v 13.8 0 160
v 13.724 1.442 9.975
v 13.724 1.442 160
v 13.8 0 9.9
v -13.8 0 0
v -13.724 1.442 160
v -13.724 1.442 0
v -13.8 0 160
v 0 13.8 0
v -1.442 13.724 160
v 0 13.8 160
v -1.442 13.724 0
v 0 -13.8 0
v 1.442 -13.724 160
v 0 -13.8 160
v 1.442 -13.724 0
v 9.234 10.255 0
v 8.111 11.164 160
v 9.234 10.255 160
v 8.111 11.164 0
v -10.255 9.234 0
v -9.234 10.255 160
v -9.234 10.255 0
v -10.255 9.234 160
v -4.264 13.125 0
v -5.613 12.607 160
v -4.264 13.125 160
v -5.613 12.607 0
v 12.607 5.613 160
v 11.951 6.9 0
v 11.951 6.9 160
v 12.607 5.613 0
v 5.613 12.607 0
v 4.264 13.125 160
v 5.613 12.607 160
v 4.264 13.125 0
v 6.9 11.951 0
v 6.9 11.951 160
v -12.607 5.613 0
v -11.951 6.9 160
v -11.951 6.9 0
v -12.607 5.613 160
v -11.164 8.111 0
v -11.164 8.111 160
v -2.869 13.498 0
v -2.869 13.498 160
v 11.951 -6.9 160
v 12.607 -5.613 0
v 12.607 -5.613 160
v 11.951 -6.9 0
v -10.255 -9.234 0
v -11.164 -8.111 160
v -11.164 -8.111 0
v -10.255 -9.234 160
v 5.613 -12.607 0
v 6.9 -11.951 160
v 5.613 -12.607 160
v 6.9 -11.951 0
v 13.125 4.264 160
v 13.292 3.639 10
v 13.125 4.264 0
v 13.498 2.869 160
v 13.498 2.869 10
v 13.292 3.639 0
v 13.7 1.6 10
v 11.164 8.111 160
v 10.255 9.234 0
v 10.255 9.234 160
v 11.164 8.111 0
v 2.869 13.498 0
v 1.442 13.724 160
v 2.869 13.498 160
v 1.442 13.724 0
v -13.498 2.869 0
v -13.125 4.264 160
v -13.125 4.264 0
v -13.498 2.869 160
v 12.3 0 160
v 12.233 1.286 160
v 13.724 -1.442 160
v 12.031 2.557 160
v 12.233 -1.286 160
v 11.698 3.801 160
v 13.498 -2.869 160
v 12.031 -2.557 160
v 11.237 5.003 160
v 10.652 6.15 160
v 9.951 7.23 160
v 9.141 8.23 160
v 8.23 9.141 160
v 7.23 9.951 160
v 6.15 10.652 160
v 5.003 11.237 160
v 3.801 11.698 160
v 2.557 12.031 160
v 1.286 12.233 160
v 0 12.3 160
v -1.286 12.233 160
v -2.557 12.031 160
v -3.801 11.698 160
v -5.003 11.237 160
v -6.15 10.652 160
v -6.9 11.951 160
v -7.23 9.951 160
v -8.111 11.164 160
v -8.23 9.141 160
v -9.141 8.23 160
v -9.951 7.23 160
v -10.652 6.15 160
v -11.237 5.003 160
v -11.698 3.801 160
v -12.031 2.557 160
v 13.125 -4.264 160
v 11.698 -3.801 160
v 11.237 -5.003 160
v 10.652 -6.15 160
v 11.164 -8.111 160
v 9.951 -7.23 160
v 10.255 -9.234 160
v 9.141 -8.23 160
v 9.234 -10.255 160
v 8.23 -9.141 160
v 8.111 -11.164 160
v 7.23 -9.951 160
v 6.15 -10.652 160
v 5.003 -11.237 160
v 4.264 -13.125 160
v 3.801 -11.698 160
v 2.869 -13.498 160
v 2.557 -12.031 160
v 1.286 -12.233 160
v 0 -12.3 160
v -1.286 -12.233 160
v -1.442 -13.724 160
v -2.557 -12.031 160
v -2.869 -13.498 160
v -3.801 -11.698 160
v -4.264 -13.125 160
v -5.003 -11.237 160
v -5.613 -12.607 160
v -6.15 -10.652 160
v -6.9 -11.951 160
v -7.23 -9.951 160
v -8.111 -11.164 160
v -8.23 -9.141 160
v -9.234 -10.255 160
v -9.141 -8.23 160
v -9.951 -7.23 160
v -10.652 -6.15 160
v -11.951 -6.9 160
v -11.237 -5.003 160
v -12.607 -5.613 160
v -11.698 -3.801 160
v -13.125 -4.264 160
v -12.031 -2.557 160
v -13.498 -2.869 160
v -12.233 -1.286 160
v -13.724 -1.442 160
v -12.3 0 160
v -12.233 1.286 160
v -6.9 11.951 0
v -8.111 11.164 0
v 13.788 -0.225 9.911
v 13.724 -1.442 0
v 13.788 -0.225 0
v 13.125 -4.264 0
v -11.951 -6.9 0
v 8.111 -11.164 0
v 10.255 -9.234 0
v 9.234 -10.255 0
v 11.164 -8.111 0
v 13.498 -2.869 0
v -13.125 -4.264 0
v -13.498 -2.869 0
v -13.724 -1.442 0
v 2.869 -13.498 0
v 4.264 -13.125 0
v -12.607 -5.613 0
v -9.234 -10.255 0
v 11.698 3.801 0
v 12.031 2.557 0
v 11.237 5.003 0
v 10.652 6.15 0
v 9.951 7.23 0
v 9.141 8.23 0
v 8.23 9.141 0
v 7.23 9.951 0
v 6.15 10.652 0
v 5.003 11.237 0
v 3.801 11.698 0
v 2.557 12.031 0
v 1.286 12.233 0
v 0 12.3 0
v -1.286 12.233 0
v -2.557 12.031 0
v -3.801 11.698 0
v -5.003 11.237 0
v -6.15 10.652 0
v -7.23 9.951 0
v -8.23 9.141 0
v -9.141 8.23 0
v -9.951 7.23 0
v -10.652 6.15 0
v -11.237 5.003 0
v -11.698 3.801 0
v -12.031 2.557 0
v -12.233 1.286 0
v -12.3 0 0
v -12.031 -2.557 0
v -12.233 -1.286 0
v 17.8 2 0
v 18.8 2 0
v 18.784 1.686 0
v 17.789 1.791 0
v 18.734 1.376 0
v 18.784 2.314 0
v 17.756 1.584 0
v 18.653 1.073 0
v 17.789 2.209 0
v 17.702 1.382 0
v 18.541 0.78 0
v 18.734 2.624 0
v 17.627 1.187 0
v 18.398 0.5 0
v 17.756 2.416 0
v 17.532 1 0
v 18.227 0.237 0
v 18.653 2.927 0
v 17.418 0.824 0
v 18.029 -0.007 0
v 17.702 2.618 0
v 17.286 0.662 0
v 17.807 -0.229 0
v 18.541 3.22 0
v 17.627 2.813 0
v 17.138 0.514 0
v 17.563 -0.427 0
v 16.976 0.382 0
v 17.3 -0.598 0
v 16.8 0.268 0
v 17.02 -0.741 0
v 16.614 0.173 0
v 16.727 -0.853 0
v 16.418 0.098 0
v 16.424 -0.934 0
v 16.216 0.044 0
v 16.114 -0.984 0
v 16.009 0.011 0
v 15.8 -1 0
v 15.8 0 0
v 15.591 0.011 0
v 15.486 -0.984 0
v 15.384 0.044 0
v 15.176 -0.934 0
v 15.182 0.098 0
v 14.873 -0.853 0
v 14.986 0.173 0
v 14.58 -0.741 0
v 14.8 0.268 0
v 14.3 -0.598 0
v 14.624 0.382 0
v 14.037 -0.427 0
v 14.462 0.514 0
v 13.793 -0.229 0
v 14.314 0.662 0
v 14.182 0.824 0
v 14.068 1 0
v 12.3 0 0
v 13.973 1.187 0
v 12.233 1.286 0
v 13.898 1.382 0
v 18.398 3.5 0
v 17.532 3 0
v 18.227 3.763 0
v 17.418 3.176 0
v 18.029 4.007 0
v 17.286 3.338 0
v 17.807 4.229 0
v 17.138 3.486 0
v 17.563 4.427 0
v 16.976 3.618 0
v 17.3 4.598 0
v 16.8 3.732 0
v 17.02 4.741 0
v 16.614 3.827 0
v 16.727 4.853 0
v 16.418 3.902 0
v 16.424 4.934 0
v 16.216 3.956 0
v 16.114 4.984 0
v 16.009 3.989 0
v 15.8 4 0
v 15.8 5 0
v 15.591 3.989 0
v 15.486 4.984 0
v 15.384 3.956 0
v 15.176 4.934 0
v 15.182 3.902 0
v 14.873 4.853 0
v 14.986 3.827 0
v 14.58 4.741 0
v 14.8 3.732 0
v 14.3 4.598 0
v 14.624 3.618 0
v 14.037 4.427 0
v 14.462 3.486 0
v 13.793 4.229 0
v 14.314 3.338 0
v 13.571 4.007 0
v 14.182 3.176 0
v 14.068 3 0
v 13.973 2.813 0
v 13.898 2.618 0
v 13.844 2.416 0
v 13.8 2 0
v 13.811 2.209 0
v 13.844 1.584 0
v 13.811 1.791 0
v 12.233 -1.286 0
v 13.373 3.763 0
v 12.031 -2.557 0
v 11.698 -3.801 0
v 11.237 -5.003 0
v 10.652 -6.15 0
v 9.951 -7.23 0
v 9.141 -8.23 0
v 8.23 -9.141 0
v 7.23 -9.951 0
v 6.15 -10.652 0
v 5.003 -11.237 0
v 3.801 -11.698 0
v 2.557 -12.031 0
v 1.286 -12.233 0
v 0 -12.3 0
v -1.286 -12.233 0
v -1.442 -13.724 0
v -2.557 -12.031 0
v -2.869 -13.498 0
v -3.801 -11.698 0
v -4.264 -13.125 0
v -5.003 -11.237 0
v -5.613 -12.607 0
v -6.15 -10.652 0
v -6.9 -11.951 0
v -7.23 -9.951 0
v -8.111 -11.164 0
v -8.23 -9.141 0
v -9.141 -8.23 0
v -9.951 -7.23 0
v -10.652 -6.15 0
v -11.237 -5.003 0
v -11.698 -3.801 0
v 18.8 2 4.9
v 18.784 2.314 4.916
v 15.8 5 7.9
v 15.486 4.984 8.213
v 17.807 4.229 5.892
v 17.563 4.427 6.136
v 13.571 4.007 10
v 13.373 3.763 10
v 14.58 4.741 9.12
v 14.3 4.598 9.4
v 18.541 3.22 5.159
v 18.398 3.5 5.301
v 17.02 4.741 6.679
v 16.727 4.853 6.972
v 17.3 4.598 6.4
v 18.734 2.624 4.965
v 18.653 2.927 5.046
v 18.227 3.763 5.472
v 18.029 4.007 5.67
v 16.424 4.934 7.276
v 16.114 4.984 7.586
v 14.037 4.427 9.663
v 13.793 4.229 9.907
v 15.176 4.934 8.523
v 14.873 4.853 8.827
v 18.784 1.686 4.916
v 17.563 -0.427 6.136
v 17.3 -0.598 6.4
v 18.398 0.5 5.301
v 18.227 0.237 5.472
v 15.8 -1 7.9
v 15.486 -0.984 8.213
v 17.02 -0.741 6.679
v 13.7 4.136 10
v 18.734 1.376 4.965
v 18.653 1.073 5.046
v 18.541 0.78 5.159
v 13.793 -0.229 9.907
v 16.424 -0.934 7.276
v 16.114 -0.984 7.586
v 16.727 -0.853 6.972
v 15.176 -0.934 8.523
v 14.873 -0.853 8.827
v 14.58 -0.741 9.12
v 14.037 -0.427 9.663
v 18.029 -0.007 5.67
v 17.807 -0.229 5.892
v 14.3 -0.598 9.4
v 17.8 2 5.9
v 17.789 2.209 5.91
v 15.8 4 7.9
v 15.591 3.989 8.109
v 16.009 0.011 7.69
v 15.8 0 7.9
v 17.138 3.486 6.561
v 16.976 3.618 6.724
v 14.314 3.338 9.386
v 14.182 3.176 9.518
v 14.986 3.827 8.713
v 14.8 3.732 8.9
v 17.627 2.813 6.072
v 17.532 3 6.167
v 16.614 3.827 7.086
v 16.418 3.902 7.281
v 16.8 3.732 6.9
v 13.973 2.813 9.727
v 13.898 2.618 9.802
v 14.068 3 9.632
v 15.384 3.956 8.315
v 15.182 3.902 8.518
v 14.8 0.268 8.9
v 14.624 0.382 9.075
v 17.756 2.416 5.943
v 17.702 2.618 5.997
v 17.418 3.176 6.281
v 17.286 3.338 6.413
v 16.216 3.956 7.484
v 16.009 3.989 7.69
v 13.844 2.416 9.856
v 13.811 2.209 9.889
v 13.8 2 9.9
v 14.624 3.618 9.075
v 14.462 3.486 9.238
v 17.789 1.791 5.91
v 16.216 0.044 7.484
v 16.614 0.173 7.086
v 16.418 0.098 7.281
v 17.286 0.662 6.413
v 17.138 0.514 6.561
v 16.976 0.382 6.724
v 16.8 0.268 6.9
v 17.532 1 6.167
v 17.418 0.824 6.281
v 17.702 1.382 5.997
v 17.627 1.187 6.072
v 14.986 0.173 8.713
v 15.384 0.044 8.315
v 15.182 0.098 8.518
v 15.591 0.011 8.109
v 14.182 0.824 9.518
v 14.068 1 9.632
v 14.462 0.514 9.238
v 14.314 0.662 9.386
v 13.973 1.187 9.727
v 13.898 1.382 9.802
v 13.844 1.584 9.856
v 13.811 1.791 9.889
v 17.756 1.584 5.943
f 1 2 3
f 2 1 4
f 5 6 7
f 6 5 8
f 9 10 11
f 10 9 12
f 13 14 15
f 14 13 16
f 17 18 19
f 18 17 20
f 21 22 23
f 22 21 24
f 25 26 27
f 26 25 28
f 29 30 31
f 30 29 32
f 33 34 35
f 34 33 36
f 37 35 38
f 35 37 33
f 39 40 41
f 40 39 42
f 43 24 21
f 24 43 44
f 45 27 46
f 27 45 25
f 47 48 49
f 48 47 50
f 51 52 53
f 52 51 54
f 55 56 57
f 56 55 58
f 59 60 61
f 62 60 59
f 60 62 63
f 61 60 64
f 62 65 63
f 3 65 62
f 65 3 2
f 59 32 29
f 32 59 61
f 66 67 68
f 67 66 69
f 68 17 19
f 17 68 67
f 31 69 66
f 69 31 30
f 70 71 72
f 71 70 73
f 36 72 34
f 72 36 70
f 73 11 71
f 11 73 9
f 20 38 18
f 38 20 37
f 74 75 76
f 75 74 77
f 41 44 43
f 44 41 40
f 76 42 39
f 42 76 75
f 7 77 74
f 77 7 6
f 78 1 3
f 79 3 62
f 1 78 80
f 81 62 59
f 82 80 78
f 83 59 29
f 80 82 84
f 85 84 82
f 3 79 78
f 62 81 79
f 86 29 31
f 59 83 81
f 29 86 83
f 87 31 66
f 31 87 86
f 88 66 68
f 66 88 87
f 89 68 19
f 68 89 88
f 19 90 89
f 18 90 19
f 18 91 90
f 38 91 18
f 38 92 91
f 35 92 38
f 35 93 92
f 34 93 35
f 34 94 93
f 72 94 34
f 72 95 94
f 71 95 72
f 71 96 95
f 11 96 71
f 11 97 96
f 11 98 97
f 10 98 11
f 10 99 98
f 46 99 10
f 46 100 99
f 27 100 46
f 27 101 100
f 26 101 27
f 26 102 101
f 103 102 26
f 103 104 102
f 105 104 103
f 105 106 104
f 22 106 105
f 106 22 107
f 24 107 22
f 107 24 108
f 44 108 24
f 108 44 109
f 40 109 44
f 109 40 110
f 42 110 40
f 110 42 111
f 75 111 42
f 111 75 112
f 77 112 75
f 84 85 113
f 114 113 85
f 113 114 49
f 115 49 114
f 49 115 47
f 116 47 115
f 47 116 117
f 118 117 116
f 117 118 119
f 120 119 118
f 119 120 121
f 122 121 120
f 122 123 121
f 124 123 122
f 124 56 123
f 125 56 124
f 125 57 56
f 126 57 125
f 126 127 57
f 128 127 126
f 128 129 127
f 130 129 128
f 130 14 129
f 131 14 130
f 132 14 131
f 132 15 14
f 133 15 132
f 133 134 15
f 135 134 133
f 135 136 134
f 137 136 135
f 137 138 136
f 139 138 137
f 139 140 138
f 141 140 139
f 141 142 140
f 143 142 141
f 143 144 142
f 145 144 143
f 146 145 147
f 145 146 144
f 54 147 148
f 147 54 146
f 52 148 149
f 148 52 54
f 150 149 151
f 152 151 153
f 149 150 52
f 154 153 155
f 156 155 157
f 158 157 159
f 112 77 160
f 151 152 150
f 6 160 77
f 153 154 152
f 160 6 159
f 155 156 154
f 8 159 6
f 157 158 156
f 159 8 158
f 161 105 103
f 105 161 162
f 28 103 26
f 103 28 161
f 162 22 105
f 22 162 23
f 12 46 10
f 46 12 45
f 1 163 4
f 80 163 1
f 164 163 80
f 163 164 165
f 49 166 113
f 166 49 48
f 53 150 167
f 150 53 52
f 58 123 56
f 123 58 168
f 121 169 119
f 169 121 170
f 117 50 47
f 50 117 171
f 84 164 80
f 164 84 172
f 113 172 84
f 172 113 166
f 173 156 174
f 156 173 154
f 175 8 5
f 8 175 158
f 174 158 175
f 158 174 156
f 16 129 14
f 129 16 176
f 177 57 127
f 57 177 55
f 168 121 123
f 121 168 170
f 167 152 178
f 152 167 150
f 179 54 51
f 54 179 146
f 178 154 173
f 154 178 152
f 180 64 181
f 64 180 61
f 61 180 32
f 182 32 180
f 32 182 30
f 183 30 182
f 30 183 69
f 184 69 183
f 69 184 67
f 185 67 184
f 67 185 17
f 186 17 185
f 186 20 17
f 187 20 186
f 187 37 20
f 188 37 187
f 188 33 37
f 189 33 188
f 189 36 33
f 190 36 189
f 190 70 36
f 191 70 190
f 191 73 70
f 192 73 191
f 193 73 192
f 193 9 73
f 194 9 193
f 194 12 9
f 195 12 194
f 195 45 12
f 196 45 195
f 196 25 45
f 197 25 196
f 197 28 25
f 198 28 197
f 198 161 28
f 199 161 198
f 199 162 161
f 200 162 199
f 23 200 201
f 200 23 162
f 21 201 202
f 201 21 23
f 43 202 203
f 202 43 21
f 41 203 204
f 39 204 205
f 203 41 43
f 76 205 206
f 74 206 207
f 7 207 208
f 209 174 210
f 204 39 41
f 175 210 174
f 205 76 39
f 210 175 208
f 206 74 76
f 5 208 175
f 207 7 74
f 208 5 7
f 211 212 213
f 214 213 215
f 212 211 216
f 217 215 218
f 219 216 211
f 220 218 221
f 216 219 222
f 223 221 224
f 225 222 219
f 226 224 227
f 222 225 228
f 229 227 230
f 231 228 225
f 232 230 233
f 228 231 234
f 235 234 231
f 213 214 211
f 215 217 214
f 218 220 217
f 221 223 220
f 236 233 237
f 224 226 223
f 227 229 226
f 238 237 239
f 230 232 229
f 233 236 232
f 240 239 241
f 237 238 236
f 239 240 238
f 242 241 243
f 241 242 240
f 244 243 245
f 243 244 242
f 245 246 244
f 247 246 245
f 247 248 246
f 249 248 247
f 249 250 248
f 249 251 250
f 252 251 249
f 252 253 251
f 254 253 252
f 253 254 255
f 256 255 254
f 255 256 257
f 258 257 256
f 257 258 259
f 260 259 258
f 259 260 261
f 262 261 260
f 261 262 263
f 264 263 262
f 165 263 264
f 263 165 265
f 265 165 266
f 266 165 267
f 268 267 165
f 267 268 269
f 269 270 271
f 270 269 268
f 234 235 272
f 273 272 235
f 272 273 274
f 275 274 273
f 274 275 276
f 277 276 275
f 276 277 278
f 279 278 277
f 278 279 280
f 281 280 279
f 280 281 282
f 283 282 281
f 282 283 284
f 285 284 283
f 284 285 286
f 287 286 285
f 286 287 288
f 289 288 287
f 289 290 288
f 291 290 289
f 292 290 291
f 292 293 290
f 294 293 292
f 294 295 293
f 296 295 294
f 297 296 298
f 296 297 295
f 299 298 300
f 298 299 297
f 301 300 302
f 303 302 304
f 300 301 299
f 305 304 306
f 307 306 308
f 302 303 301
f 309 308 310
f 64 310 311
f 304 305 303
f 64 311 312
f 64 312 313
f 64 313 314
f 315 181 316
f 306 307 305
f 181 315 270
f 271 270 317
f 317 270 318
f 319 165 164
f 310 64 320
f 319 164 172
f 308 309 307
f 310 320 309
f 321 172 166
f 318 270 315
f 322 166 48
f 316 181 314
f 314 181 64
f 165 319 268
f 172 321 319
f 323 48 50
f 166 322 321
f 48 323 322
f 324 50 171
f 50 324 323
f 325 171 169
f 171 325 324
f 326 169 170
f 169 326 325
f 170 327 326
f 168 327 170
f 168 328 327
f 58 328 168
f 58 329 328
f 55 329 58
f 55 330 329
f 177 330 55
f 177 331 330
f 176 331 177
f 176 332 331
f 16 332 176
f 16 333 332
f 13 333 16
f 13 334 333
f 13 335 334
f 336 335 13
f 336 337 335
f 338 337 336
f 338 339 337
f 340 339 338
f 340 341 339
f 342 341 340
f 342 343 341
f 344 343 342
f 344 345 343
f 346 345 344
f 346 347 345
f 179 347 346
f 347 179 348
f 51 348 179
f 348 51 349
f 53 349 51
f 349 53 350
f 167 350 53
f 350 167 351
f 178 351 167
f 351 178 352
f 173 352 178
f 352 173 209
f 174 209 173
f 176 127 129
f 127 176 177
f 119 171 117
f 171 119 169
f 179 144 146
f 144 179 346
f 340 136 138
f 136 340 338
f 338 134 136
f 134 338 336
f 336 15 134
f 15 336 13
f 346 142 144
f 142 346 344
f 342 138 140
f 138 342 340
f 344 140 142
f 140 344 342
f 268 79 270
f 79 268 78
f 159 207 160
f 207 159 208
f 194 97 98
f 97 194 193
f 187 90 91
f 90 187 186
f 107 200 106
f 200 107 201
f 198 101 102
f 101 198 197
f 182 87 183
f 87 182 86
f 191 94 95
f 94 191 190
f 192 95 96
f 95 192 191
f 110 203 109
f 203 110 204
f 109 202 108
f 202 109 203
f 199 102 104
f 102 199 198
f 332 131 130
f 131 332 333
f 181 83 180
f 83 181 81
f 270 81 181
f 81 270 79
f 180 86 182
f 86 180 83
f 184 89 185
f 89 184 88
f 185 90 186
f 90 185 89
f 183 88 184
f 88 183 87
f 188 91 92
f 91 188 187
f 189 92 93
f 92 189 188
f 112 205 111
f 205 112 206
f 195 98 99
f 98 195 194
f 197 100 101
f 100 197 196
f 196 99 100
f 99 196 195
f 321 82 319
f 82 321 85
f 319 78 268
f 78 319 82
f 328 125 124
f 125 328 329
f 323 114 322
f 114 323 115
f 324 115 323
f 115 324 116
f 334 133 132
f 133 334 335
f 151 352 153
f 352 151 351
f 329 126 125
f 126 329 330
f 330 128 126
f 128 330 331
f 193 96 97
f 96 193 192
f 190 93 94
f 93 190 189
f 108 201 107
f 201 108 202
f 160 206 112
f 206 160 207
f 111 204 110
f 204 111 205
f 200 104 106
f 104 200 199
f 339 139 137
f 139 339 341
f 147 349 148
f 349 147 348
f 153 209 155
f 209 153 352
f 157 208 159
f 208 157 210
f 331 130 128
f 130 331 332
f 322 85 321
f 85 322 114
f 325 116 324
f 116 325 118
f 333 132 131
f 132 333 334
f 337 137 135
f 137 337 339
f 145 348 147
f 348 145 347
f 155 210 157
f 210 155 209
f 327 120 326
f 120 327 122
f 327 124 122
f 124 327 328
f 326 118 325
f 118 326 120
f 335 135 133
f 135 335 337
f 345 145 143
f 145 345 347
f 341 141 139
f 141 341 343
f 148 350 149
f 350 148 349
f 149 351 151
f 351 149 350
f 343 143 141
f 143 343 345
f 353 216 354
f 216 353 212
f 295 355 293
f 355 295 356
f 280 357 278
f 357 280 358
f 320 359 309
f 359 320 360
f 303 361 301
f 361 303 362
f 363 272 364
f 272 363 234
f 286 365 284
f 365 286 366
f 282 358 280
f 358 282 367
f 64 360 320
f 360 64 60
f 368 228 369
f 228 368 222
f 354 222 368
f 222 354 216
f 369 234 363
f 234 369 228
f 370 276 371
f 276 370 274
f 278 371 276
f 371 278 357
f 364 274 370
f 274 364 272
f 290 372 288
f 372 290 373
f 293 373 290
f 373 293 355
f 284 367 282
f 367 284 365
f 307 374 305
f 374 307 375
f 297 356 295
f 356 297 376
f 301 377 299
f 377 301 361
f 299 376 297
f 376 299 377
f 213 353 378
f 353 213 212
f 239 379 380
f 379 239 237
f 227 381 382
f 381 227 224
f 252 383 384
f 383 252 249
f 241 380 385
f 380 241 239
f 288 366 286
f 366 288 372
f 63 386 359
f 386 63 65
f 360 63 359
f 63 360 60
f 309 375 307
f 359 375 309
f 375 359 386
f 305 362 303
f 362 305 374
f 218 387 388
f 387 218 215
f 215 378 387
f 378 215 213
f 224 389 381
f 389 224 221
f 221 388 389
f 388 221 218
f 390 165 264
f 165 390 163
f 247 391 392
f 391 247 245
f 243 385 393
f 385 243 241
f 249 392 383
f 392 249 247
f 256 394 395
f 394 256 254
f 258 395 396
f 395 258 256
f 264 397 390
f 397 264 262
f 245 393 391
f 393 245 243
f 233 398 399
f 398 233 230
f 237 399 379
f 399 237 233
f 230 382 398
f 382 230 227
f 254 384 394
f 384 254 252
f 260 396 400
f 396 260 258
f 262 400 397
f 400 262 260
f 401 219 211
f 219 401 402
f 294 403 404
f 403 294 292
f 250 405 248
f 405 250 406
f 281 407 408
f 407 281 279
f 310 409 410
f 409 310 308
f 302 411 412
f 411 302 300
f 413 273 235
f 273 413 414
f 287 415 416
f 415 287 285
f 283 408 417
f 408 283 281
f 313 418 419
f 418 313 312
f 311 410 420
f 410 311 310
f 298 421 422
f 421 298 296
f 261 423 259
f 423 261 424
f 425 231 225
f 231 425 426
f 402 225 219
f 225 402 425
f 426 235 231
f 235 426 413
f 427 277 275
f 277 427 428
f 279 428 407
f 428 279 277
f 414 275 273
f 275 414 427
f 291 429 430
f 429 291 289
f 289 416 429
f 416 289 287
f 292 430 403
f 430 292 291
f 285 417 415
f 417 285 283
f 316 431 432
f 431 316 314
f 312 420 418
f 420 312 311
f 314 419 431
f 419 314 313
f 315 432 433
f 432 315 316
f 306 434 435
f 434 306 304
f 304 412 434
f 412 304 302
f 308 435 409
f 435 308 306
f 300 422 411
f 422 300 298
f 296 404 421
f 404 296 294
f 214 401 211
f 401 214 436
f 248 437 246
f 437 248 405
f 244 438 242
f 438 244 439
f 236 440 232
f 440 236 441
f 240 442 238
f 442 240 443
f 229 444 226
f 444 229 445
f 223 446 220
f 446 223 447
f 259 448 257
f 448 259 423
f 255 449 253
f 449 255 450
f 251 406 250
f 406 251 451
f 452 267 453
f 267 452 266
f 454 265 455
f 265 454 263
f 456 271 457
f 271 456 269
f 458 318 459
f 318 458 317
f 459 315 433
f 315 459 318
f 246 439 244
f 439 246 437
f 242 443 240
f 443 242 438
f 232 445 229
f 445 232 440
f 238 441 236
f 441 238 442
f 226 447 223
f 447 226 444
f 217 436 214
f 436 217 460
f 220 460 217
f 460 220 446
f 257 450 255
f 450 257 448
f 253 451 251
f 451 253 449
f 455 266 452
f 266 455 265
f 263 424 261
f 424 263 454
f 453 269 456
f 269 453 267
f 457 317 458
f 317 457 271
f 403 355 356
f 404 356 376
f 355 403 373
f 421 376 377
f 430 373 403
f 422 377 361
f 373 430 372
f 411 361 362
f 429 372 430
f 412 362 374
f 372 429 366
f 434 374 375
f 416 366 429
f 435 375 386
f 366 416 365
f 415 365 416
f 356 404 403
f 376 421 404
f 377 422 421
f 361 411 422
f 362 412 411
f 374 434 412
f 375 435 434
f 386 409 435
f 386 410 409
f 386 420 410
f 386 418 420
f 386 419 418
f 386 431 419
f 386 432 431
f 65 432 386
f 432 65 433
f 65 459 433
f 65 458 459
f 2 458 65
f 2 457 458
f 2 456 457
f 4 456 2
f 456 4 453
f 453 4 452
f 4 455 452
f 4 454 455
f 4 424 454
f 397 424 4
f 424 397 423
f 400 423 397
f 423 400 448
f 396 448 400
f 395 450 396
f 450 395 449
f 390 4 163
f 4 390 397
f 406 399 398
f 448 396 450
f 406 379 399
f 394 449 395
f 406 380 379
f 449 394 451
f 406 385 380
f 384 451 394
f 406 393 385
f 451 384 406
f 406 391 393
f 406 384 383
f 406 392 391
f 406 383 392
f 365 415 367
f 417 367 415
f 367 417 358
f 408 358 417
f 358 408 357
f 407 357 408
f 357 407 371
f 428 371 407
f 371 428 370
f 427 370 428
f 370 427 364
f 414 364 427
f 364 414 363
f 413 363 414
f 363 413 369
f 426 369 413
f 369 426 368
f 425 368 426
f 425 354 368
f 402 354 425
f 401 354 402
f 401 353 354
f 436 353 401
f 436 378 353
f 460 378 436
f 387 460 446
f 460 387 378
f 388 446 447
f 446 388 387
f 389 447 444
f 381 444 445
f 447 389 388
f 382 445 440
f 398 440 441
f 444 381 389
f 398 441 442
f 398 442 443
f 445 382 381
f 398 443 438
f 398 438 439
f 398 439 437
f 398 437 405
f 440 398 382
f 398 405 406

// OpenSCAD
$fn = 60;

vyska = 160;
prumer = 24.6;
stena = 1.5;

module voditko() {
    difference() {
        translate([2, 2, 0]) cylinder(r=3, h=10);
        translate([2, 2, 0]) cylinder(r=2, h=10);
        #rotate([0, 45, 0]) translate([-20, -2, 7]) cube([30, 8, 8]);
    }
}

difference() {
    cylinder(r=prumer/2+stena, h=vyska);
    cylinder(r=prumer/2, h=vyska);
}

translate([prumer/2+stena, 0, 0]) voditko();
